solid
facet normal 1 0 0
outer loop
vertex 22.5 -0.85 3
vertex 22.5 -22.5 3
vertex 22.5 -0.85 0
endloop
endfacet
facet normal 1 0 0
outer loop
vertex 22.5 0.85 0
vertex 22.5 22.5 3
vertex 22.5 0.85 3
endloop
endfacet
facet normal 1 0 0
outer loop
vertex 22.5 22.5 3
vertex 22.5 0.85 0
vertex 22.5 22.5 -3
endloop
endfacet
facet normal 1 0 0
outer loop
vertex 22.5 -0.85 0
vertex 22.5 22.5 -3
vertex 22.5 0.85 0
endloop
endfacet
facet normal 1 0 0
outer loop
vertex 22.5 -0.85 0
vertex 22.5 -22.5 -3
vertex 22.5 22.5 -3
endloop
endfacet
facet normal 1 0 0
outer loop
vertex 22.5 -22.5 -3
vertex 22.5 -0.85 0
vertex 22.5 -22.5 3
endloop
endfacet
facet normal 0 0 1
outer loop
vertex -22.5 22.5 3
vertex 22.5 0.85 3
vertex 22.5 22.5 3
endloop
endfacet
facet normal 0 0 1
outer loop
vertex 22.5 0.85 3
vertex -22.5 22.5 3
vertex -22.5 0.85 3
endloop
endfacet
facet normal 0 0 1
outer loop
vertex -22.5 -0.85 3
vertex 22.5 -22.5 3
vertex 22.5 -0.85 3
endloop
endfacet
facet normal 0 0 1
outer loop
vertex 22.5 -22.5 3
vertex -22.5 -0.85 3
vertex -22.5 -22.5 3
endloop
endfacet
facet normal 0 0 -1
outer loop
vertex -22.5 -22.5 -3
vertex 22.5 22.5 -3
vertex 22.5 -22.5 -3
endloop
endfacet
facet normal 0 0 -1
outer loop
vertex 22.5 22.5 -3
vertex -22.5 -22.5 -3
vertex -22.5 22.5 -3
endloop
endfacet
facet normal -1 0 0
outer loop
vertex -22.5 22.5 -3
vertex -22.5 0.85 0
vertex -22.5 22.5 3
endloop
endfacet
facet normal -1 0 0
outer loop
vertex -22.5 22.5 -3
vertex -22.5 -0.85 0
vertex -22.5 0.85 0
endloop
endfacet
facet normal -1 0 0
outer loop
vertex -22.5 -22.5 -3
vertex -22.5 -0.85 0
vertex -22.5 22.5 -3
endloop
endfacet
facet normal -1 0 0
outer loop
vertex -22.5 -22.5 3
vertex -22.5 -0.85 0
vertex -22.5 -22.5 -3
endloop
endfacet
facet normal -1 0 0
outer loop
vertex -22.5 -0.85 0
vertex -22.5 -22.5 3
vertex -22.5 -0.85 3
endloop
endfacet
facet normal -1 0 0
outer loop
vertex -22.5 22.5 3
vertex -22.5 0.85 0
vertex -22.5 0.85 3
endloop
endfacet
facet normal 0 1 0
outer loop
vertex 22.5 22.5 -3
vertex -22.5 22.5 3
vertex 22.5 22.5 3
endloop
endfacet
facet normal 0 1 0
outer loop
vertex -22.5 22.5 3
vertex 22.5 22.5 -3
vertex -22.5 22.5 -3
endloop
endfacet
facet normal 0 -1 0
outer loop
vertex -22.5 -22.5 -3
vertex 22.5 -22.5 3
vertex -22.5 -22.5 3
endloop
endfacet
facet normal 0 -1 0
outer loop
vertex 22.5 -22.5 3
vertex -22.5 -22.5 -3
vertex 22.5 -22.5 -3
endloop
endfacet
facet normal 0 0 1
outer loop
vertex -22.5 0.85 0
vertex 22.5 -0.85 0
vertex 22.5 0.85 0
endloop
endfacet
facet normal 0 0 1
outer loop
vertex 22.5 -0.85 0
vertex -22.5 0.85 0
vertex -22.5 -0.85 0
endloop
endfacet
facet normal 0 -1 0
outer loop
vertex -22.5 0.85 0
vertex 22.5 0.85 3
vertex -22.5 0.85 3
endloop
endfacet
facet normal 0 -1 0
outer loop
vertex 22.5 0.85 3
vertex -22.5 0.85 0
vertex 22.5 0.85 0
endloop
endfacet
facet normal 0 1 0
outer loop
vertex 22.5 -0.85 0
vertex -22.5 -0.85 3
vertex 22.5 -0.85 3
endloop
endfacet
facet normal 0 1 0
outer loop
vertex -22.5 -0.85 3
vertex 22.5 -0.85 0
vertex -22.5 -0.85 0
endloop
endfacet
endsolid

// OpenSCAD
/**
 * @author OlivierLD
 * 
 * Small one relay module stand
 */

standThickness = 6;
standWidth = 45;
standLength = 45;

slotThickNess = 1.7;
slotDepth = 3;

rotate([0, 0, 0]) {
	translate([0, 0, 0]) {
		difference() {
			cube(size=[standWidth, standLength, standThickness], center=true);
			translate([0, 0, (standThickness - slotDepth) / 2]) {
				cube(size=[standWidth, slotThickNess, slotDepth], center=true);
			}
		}
	}
}
